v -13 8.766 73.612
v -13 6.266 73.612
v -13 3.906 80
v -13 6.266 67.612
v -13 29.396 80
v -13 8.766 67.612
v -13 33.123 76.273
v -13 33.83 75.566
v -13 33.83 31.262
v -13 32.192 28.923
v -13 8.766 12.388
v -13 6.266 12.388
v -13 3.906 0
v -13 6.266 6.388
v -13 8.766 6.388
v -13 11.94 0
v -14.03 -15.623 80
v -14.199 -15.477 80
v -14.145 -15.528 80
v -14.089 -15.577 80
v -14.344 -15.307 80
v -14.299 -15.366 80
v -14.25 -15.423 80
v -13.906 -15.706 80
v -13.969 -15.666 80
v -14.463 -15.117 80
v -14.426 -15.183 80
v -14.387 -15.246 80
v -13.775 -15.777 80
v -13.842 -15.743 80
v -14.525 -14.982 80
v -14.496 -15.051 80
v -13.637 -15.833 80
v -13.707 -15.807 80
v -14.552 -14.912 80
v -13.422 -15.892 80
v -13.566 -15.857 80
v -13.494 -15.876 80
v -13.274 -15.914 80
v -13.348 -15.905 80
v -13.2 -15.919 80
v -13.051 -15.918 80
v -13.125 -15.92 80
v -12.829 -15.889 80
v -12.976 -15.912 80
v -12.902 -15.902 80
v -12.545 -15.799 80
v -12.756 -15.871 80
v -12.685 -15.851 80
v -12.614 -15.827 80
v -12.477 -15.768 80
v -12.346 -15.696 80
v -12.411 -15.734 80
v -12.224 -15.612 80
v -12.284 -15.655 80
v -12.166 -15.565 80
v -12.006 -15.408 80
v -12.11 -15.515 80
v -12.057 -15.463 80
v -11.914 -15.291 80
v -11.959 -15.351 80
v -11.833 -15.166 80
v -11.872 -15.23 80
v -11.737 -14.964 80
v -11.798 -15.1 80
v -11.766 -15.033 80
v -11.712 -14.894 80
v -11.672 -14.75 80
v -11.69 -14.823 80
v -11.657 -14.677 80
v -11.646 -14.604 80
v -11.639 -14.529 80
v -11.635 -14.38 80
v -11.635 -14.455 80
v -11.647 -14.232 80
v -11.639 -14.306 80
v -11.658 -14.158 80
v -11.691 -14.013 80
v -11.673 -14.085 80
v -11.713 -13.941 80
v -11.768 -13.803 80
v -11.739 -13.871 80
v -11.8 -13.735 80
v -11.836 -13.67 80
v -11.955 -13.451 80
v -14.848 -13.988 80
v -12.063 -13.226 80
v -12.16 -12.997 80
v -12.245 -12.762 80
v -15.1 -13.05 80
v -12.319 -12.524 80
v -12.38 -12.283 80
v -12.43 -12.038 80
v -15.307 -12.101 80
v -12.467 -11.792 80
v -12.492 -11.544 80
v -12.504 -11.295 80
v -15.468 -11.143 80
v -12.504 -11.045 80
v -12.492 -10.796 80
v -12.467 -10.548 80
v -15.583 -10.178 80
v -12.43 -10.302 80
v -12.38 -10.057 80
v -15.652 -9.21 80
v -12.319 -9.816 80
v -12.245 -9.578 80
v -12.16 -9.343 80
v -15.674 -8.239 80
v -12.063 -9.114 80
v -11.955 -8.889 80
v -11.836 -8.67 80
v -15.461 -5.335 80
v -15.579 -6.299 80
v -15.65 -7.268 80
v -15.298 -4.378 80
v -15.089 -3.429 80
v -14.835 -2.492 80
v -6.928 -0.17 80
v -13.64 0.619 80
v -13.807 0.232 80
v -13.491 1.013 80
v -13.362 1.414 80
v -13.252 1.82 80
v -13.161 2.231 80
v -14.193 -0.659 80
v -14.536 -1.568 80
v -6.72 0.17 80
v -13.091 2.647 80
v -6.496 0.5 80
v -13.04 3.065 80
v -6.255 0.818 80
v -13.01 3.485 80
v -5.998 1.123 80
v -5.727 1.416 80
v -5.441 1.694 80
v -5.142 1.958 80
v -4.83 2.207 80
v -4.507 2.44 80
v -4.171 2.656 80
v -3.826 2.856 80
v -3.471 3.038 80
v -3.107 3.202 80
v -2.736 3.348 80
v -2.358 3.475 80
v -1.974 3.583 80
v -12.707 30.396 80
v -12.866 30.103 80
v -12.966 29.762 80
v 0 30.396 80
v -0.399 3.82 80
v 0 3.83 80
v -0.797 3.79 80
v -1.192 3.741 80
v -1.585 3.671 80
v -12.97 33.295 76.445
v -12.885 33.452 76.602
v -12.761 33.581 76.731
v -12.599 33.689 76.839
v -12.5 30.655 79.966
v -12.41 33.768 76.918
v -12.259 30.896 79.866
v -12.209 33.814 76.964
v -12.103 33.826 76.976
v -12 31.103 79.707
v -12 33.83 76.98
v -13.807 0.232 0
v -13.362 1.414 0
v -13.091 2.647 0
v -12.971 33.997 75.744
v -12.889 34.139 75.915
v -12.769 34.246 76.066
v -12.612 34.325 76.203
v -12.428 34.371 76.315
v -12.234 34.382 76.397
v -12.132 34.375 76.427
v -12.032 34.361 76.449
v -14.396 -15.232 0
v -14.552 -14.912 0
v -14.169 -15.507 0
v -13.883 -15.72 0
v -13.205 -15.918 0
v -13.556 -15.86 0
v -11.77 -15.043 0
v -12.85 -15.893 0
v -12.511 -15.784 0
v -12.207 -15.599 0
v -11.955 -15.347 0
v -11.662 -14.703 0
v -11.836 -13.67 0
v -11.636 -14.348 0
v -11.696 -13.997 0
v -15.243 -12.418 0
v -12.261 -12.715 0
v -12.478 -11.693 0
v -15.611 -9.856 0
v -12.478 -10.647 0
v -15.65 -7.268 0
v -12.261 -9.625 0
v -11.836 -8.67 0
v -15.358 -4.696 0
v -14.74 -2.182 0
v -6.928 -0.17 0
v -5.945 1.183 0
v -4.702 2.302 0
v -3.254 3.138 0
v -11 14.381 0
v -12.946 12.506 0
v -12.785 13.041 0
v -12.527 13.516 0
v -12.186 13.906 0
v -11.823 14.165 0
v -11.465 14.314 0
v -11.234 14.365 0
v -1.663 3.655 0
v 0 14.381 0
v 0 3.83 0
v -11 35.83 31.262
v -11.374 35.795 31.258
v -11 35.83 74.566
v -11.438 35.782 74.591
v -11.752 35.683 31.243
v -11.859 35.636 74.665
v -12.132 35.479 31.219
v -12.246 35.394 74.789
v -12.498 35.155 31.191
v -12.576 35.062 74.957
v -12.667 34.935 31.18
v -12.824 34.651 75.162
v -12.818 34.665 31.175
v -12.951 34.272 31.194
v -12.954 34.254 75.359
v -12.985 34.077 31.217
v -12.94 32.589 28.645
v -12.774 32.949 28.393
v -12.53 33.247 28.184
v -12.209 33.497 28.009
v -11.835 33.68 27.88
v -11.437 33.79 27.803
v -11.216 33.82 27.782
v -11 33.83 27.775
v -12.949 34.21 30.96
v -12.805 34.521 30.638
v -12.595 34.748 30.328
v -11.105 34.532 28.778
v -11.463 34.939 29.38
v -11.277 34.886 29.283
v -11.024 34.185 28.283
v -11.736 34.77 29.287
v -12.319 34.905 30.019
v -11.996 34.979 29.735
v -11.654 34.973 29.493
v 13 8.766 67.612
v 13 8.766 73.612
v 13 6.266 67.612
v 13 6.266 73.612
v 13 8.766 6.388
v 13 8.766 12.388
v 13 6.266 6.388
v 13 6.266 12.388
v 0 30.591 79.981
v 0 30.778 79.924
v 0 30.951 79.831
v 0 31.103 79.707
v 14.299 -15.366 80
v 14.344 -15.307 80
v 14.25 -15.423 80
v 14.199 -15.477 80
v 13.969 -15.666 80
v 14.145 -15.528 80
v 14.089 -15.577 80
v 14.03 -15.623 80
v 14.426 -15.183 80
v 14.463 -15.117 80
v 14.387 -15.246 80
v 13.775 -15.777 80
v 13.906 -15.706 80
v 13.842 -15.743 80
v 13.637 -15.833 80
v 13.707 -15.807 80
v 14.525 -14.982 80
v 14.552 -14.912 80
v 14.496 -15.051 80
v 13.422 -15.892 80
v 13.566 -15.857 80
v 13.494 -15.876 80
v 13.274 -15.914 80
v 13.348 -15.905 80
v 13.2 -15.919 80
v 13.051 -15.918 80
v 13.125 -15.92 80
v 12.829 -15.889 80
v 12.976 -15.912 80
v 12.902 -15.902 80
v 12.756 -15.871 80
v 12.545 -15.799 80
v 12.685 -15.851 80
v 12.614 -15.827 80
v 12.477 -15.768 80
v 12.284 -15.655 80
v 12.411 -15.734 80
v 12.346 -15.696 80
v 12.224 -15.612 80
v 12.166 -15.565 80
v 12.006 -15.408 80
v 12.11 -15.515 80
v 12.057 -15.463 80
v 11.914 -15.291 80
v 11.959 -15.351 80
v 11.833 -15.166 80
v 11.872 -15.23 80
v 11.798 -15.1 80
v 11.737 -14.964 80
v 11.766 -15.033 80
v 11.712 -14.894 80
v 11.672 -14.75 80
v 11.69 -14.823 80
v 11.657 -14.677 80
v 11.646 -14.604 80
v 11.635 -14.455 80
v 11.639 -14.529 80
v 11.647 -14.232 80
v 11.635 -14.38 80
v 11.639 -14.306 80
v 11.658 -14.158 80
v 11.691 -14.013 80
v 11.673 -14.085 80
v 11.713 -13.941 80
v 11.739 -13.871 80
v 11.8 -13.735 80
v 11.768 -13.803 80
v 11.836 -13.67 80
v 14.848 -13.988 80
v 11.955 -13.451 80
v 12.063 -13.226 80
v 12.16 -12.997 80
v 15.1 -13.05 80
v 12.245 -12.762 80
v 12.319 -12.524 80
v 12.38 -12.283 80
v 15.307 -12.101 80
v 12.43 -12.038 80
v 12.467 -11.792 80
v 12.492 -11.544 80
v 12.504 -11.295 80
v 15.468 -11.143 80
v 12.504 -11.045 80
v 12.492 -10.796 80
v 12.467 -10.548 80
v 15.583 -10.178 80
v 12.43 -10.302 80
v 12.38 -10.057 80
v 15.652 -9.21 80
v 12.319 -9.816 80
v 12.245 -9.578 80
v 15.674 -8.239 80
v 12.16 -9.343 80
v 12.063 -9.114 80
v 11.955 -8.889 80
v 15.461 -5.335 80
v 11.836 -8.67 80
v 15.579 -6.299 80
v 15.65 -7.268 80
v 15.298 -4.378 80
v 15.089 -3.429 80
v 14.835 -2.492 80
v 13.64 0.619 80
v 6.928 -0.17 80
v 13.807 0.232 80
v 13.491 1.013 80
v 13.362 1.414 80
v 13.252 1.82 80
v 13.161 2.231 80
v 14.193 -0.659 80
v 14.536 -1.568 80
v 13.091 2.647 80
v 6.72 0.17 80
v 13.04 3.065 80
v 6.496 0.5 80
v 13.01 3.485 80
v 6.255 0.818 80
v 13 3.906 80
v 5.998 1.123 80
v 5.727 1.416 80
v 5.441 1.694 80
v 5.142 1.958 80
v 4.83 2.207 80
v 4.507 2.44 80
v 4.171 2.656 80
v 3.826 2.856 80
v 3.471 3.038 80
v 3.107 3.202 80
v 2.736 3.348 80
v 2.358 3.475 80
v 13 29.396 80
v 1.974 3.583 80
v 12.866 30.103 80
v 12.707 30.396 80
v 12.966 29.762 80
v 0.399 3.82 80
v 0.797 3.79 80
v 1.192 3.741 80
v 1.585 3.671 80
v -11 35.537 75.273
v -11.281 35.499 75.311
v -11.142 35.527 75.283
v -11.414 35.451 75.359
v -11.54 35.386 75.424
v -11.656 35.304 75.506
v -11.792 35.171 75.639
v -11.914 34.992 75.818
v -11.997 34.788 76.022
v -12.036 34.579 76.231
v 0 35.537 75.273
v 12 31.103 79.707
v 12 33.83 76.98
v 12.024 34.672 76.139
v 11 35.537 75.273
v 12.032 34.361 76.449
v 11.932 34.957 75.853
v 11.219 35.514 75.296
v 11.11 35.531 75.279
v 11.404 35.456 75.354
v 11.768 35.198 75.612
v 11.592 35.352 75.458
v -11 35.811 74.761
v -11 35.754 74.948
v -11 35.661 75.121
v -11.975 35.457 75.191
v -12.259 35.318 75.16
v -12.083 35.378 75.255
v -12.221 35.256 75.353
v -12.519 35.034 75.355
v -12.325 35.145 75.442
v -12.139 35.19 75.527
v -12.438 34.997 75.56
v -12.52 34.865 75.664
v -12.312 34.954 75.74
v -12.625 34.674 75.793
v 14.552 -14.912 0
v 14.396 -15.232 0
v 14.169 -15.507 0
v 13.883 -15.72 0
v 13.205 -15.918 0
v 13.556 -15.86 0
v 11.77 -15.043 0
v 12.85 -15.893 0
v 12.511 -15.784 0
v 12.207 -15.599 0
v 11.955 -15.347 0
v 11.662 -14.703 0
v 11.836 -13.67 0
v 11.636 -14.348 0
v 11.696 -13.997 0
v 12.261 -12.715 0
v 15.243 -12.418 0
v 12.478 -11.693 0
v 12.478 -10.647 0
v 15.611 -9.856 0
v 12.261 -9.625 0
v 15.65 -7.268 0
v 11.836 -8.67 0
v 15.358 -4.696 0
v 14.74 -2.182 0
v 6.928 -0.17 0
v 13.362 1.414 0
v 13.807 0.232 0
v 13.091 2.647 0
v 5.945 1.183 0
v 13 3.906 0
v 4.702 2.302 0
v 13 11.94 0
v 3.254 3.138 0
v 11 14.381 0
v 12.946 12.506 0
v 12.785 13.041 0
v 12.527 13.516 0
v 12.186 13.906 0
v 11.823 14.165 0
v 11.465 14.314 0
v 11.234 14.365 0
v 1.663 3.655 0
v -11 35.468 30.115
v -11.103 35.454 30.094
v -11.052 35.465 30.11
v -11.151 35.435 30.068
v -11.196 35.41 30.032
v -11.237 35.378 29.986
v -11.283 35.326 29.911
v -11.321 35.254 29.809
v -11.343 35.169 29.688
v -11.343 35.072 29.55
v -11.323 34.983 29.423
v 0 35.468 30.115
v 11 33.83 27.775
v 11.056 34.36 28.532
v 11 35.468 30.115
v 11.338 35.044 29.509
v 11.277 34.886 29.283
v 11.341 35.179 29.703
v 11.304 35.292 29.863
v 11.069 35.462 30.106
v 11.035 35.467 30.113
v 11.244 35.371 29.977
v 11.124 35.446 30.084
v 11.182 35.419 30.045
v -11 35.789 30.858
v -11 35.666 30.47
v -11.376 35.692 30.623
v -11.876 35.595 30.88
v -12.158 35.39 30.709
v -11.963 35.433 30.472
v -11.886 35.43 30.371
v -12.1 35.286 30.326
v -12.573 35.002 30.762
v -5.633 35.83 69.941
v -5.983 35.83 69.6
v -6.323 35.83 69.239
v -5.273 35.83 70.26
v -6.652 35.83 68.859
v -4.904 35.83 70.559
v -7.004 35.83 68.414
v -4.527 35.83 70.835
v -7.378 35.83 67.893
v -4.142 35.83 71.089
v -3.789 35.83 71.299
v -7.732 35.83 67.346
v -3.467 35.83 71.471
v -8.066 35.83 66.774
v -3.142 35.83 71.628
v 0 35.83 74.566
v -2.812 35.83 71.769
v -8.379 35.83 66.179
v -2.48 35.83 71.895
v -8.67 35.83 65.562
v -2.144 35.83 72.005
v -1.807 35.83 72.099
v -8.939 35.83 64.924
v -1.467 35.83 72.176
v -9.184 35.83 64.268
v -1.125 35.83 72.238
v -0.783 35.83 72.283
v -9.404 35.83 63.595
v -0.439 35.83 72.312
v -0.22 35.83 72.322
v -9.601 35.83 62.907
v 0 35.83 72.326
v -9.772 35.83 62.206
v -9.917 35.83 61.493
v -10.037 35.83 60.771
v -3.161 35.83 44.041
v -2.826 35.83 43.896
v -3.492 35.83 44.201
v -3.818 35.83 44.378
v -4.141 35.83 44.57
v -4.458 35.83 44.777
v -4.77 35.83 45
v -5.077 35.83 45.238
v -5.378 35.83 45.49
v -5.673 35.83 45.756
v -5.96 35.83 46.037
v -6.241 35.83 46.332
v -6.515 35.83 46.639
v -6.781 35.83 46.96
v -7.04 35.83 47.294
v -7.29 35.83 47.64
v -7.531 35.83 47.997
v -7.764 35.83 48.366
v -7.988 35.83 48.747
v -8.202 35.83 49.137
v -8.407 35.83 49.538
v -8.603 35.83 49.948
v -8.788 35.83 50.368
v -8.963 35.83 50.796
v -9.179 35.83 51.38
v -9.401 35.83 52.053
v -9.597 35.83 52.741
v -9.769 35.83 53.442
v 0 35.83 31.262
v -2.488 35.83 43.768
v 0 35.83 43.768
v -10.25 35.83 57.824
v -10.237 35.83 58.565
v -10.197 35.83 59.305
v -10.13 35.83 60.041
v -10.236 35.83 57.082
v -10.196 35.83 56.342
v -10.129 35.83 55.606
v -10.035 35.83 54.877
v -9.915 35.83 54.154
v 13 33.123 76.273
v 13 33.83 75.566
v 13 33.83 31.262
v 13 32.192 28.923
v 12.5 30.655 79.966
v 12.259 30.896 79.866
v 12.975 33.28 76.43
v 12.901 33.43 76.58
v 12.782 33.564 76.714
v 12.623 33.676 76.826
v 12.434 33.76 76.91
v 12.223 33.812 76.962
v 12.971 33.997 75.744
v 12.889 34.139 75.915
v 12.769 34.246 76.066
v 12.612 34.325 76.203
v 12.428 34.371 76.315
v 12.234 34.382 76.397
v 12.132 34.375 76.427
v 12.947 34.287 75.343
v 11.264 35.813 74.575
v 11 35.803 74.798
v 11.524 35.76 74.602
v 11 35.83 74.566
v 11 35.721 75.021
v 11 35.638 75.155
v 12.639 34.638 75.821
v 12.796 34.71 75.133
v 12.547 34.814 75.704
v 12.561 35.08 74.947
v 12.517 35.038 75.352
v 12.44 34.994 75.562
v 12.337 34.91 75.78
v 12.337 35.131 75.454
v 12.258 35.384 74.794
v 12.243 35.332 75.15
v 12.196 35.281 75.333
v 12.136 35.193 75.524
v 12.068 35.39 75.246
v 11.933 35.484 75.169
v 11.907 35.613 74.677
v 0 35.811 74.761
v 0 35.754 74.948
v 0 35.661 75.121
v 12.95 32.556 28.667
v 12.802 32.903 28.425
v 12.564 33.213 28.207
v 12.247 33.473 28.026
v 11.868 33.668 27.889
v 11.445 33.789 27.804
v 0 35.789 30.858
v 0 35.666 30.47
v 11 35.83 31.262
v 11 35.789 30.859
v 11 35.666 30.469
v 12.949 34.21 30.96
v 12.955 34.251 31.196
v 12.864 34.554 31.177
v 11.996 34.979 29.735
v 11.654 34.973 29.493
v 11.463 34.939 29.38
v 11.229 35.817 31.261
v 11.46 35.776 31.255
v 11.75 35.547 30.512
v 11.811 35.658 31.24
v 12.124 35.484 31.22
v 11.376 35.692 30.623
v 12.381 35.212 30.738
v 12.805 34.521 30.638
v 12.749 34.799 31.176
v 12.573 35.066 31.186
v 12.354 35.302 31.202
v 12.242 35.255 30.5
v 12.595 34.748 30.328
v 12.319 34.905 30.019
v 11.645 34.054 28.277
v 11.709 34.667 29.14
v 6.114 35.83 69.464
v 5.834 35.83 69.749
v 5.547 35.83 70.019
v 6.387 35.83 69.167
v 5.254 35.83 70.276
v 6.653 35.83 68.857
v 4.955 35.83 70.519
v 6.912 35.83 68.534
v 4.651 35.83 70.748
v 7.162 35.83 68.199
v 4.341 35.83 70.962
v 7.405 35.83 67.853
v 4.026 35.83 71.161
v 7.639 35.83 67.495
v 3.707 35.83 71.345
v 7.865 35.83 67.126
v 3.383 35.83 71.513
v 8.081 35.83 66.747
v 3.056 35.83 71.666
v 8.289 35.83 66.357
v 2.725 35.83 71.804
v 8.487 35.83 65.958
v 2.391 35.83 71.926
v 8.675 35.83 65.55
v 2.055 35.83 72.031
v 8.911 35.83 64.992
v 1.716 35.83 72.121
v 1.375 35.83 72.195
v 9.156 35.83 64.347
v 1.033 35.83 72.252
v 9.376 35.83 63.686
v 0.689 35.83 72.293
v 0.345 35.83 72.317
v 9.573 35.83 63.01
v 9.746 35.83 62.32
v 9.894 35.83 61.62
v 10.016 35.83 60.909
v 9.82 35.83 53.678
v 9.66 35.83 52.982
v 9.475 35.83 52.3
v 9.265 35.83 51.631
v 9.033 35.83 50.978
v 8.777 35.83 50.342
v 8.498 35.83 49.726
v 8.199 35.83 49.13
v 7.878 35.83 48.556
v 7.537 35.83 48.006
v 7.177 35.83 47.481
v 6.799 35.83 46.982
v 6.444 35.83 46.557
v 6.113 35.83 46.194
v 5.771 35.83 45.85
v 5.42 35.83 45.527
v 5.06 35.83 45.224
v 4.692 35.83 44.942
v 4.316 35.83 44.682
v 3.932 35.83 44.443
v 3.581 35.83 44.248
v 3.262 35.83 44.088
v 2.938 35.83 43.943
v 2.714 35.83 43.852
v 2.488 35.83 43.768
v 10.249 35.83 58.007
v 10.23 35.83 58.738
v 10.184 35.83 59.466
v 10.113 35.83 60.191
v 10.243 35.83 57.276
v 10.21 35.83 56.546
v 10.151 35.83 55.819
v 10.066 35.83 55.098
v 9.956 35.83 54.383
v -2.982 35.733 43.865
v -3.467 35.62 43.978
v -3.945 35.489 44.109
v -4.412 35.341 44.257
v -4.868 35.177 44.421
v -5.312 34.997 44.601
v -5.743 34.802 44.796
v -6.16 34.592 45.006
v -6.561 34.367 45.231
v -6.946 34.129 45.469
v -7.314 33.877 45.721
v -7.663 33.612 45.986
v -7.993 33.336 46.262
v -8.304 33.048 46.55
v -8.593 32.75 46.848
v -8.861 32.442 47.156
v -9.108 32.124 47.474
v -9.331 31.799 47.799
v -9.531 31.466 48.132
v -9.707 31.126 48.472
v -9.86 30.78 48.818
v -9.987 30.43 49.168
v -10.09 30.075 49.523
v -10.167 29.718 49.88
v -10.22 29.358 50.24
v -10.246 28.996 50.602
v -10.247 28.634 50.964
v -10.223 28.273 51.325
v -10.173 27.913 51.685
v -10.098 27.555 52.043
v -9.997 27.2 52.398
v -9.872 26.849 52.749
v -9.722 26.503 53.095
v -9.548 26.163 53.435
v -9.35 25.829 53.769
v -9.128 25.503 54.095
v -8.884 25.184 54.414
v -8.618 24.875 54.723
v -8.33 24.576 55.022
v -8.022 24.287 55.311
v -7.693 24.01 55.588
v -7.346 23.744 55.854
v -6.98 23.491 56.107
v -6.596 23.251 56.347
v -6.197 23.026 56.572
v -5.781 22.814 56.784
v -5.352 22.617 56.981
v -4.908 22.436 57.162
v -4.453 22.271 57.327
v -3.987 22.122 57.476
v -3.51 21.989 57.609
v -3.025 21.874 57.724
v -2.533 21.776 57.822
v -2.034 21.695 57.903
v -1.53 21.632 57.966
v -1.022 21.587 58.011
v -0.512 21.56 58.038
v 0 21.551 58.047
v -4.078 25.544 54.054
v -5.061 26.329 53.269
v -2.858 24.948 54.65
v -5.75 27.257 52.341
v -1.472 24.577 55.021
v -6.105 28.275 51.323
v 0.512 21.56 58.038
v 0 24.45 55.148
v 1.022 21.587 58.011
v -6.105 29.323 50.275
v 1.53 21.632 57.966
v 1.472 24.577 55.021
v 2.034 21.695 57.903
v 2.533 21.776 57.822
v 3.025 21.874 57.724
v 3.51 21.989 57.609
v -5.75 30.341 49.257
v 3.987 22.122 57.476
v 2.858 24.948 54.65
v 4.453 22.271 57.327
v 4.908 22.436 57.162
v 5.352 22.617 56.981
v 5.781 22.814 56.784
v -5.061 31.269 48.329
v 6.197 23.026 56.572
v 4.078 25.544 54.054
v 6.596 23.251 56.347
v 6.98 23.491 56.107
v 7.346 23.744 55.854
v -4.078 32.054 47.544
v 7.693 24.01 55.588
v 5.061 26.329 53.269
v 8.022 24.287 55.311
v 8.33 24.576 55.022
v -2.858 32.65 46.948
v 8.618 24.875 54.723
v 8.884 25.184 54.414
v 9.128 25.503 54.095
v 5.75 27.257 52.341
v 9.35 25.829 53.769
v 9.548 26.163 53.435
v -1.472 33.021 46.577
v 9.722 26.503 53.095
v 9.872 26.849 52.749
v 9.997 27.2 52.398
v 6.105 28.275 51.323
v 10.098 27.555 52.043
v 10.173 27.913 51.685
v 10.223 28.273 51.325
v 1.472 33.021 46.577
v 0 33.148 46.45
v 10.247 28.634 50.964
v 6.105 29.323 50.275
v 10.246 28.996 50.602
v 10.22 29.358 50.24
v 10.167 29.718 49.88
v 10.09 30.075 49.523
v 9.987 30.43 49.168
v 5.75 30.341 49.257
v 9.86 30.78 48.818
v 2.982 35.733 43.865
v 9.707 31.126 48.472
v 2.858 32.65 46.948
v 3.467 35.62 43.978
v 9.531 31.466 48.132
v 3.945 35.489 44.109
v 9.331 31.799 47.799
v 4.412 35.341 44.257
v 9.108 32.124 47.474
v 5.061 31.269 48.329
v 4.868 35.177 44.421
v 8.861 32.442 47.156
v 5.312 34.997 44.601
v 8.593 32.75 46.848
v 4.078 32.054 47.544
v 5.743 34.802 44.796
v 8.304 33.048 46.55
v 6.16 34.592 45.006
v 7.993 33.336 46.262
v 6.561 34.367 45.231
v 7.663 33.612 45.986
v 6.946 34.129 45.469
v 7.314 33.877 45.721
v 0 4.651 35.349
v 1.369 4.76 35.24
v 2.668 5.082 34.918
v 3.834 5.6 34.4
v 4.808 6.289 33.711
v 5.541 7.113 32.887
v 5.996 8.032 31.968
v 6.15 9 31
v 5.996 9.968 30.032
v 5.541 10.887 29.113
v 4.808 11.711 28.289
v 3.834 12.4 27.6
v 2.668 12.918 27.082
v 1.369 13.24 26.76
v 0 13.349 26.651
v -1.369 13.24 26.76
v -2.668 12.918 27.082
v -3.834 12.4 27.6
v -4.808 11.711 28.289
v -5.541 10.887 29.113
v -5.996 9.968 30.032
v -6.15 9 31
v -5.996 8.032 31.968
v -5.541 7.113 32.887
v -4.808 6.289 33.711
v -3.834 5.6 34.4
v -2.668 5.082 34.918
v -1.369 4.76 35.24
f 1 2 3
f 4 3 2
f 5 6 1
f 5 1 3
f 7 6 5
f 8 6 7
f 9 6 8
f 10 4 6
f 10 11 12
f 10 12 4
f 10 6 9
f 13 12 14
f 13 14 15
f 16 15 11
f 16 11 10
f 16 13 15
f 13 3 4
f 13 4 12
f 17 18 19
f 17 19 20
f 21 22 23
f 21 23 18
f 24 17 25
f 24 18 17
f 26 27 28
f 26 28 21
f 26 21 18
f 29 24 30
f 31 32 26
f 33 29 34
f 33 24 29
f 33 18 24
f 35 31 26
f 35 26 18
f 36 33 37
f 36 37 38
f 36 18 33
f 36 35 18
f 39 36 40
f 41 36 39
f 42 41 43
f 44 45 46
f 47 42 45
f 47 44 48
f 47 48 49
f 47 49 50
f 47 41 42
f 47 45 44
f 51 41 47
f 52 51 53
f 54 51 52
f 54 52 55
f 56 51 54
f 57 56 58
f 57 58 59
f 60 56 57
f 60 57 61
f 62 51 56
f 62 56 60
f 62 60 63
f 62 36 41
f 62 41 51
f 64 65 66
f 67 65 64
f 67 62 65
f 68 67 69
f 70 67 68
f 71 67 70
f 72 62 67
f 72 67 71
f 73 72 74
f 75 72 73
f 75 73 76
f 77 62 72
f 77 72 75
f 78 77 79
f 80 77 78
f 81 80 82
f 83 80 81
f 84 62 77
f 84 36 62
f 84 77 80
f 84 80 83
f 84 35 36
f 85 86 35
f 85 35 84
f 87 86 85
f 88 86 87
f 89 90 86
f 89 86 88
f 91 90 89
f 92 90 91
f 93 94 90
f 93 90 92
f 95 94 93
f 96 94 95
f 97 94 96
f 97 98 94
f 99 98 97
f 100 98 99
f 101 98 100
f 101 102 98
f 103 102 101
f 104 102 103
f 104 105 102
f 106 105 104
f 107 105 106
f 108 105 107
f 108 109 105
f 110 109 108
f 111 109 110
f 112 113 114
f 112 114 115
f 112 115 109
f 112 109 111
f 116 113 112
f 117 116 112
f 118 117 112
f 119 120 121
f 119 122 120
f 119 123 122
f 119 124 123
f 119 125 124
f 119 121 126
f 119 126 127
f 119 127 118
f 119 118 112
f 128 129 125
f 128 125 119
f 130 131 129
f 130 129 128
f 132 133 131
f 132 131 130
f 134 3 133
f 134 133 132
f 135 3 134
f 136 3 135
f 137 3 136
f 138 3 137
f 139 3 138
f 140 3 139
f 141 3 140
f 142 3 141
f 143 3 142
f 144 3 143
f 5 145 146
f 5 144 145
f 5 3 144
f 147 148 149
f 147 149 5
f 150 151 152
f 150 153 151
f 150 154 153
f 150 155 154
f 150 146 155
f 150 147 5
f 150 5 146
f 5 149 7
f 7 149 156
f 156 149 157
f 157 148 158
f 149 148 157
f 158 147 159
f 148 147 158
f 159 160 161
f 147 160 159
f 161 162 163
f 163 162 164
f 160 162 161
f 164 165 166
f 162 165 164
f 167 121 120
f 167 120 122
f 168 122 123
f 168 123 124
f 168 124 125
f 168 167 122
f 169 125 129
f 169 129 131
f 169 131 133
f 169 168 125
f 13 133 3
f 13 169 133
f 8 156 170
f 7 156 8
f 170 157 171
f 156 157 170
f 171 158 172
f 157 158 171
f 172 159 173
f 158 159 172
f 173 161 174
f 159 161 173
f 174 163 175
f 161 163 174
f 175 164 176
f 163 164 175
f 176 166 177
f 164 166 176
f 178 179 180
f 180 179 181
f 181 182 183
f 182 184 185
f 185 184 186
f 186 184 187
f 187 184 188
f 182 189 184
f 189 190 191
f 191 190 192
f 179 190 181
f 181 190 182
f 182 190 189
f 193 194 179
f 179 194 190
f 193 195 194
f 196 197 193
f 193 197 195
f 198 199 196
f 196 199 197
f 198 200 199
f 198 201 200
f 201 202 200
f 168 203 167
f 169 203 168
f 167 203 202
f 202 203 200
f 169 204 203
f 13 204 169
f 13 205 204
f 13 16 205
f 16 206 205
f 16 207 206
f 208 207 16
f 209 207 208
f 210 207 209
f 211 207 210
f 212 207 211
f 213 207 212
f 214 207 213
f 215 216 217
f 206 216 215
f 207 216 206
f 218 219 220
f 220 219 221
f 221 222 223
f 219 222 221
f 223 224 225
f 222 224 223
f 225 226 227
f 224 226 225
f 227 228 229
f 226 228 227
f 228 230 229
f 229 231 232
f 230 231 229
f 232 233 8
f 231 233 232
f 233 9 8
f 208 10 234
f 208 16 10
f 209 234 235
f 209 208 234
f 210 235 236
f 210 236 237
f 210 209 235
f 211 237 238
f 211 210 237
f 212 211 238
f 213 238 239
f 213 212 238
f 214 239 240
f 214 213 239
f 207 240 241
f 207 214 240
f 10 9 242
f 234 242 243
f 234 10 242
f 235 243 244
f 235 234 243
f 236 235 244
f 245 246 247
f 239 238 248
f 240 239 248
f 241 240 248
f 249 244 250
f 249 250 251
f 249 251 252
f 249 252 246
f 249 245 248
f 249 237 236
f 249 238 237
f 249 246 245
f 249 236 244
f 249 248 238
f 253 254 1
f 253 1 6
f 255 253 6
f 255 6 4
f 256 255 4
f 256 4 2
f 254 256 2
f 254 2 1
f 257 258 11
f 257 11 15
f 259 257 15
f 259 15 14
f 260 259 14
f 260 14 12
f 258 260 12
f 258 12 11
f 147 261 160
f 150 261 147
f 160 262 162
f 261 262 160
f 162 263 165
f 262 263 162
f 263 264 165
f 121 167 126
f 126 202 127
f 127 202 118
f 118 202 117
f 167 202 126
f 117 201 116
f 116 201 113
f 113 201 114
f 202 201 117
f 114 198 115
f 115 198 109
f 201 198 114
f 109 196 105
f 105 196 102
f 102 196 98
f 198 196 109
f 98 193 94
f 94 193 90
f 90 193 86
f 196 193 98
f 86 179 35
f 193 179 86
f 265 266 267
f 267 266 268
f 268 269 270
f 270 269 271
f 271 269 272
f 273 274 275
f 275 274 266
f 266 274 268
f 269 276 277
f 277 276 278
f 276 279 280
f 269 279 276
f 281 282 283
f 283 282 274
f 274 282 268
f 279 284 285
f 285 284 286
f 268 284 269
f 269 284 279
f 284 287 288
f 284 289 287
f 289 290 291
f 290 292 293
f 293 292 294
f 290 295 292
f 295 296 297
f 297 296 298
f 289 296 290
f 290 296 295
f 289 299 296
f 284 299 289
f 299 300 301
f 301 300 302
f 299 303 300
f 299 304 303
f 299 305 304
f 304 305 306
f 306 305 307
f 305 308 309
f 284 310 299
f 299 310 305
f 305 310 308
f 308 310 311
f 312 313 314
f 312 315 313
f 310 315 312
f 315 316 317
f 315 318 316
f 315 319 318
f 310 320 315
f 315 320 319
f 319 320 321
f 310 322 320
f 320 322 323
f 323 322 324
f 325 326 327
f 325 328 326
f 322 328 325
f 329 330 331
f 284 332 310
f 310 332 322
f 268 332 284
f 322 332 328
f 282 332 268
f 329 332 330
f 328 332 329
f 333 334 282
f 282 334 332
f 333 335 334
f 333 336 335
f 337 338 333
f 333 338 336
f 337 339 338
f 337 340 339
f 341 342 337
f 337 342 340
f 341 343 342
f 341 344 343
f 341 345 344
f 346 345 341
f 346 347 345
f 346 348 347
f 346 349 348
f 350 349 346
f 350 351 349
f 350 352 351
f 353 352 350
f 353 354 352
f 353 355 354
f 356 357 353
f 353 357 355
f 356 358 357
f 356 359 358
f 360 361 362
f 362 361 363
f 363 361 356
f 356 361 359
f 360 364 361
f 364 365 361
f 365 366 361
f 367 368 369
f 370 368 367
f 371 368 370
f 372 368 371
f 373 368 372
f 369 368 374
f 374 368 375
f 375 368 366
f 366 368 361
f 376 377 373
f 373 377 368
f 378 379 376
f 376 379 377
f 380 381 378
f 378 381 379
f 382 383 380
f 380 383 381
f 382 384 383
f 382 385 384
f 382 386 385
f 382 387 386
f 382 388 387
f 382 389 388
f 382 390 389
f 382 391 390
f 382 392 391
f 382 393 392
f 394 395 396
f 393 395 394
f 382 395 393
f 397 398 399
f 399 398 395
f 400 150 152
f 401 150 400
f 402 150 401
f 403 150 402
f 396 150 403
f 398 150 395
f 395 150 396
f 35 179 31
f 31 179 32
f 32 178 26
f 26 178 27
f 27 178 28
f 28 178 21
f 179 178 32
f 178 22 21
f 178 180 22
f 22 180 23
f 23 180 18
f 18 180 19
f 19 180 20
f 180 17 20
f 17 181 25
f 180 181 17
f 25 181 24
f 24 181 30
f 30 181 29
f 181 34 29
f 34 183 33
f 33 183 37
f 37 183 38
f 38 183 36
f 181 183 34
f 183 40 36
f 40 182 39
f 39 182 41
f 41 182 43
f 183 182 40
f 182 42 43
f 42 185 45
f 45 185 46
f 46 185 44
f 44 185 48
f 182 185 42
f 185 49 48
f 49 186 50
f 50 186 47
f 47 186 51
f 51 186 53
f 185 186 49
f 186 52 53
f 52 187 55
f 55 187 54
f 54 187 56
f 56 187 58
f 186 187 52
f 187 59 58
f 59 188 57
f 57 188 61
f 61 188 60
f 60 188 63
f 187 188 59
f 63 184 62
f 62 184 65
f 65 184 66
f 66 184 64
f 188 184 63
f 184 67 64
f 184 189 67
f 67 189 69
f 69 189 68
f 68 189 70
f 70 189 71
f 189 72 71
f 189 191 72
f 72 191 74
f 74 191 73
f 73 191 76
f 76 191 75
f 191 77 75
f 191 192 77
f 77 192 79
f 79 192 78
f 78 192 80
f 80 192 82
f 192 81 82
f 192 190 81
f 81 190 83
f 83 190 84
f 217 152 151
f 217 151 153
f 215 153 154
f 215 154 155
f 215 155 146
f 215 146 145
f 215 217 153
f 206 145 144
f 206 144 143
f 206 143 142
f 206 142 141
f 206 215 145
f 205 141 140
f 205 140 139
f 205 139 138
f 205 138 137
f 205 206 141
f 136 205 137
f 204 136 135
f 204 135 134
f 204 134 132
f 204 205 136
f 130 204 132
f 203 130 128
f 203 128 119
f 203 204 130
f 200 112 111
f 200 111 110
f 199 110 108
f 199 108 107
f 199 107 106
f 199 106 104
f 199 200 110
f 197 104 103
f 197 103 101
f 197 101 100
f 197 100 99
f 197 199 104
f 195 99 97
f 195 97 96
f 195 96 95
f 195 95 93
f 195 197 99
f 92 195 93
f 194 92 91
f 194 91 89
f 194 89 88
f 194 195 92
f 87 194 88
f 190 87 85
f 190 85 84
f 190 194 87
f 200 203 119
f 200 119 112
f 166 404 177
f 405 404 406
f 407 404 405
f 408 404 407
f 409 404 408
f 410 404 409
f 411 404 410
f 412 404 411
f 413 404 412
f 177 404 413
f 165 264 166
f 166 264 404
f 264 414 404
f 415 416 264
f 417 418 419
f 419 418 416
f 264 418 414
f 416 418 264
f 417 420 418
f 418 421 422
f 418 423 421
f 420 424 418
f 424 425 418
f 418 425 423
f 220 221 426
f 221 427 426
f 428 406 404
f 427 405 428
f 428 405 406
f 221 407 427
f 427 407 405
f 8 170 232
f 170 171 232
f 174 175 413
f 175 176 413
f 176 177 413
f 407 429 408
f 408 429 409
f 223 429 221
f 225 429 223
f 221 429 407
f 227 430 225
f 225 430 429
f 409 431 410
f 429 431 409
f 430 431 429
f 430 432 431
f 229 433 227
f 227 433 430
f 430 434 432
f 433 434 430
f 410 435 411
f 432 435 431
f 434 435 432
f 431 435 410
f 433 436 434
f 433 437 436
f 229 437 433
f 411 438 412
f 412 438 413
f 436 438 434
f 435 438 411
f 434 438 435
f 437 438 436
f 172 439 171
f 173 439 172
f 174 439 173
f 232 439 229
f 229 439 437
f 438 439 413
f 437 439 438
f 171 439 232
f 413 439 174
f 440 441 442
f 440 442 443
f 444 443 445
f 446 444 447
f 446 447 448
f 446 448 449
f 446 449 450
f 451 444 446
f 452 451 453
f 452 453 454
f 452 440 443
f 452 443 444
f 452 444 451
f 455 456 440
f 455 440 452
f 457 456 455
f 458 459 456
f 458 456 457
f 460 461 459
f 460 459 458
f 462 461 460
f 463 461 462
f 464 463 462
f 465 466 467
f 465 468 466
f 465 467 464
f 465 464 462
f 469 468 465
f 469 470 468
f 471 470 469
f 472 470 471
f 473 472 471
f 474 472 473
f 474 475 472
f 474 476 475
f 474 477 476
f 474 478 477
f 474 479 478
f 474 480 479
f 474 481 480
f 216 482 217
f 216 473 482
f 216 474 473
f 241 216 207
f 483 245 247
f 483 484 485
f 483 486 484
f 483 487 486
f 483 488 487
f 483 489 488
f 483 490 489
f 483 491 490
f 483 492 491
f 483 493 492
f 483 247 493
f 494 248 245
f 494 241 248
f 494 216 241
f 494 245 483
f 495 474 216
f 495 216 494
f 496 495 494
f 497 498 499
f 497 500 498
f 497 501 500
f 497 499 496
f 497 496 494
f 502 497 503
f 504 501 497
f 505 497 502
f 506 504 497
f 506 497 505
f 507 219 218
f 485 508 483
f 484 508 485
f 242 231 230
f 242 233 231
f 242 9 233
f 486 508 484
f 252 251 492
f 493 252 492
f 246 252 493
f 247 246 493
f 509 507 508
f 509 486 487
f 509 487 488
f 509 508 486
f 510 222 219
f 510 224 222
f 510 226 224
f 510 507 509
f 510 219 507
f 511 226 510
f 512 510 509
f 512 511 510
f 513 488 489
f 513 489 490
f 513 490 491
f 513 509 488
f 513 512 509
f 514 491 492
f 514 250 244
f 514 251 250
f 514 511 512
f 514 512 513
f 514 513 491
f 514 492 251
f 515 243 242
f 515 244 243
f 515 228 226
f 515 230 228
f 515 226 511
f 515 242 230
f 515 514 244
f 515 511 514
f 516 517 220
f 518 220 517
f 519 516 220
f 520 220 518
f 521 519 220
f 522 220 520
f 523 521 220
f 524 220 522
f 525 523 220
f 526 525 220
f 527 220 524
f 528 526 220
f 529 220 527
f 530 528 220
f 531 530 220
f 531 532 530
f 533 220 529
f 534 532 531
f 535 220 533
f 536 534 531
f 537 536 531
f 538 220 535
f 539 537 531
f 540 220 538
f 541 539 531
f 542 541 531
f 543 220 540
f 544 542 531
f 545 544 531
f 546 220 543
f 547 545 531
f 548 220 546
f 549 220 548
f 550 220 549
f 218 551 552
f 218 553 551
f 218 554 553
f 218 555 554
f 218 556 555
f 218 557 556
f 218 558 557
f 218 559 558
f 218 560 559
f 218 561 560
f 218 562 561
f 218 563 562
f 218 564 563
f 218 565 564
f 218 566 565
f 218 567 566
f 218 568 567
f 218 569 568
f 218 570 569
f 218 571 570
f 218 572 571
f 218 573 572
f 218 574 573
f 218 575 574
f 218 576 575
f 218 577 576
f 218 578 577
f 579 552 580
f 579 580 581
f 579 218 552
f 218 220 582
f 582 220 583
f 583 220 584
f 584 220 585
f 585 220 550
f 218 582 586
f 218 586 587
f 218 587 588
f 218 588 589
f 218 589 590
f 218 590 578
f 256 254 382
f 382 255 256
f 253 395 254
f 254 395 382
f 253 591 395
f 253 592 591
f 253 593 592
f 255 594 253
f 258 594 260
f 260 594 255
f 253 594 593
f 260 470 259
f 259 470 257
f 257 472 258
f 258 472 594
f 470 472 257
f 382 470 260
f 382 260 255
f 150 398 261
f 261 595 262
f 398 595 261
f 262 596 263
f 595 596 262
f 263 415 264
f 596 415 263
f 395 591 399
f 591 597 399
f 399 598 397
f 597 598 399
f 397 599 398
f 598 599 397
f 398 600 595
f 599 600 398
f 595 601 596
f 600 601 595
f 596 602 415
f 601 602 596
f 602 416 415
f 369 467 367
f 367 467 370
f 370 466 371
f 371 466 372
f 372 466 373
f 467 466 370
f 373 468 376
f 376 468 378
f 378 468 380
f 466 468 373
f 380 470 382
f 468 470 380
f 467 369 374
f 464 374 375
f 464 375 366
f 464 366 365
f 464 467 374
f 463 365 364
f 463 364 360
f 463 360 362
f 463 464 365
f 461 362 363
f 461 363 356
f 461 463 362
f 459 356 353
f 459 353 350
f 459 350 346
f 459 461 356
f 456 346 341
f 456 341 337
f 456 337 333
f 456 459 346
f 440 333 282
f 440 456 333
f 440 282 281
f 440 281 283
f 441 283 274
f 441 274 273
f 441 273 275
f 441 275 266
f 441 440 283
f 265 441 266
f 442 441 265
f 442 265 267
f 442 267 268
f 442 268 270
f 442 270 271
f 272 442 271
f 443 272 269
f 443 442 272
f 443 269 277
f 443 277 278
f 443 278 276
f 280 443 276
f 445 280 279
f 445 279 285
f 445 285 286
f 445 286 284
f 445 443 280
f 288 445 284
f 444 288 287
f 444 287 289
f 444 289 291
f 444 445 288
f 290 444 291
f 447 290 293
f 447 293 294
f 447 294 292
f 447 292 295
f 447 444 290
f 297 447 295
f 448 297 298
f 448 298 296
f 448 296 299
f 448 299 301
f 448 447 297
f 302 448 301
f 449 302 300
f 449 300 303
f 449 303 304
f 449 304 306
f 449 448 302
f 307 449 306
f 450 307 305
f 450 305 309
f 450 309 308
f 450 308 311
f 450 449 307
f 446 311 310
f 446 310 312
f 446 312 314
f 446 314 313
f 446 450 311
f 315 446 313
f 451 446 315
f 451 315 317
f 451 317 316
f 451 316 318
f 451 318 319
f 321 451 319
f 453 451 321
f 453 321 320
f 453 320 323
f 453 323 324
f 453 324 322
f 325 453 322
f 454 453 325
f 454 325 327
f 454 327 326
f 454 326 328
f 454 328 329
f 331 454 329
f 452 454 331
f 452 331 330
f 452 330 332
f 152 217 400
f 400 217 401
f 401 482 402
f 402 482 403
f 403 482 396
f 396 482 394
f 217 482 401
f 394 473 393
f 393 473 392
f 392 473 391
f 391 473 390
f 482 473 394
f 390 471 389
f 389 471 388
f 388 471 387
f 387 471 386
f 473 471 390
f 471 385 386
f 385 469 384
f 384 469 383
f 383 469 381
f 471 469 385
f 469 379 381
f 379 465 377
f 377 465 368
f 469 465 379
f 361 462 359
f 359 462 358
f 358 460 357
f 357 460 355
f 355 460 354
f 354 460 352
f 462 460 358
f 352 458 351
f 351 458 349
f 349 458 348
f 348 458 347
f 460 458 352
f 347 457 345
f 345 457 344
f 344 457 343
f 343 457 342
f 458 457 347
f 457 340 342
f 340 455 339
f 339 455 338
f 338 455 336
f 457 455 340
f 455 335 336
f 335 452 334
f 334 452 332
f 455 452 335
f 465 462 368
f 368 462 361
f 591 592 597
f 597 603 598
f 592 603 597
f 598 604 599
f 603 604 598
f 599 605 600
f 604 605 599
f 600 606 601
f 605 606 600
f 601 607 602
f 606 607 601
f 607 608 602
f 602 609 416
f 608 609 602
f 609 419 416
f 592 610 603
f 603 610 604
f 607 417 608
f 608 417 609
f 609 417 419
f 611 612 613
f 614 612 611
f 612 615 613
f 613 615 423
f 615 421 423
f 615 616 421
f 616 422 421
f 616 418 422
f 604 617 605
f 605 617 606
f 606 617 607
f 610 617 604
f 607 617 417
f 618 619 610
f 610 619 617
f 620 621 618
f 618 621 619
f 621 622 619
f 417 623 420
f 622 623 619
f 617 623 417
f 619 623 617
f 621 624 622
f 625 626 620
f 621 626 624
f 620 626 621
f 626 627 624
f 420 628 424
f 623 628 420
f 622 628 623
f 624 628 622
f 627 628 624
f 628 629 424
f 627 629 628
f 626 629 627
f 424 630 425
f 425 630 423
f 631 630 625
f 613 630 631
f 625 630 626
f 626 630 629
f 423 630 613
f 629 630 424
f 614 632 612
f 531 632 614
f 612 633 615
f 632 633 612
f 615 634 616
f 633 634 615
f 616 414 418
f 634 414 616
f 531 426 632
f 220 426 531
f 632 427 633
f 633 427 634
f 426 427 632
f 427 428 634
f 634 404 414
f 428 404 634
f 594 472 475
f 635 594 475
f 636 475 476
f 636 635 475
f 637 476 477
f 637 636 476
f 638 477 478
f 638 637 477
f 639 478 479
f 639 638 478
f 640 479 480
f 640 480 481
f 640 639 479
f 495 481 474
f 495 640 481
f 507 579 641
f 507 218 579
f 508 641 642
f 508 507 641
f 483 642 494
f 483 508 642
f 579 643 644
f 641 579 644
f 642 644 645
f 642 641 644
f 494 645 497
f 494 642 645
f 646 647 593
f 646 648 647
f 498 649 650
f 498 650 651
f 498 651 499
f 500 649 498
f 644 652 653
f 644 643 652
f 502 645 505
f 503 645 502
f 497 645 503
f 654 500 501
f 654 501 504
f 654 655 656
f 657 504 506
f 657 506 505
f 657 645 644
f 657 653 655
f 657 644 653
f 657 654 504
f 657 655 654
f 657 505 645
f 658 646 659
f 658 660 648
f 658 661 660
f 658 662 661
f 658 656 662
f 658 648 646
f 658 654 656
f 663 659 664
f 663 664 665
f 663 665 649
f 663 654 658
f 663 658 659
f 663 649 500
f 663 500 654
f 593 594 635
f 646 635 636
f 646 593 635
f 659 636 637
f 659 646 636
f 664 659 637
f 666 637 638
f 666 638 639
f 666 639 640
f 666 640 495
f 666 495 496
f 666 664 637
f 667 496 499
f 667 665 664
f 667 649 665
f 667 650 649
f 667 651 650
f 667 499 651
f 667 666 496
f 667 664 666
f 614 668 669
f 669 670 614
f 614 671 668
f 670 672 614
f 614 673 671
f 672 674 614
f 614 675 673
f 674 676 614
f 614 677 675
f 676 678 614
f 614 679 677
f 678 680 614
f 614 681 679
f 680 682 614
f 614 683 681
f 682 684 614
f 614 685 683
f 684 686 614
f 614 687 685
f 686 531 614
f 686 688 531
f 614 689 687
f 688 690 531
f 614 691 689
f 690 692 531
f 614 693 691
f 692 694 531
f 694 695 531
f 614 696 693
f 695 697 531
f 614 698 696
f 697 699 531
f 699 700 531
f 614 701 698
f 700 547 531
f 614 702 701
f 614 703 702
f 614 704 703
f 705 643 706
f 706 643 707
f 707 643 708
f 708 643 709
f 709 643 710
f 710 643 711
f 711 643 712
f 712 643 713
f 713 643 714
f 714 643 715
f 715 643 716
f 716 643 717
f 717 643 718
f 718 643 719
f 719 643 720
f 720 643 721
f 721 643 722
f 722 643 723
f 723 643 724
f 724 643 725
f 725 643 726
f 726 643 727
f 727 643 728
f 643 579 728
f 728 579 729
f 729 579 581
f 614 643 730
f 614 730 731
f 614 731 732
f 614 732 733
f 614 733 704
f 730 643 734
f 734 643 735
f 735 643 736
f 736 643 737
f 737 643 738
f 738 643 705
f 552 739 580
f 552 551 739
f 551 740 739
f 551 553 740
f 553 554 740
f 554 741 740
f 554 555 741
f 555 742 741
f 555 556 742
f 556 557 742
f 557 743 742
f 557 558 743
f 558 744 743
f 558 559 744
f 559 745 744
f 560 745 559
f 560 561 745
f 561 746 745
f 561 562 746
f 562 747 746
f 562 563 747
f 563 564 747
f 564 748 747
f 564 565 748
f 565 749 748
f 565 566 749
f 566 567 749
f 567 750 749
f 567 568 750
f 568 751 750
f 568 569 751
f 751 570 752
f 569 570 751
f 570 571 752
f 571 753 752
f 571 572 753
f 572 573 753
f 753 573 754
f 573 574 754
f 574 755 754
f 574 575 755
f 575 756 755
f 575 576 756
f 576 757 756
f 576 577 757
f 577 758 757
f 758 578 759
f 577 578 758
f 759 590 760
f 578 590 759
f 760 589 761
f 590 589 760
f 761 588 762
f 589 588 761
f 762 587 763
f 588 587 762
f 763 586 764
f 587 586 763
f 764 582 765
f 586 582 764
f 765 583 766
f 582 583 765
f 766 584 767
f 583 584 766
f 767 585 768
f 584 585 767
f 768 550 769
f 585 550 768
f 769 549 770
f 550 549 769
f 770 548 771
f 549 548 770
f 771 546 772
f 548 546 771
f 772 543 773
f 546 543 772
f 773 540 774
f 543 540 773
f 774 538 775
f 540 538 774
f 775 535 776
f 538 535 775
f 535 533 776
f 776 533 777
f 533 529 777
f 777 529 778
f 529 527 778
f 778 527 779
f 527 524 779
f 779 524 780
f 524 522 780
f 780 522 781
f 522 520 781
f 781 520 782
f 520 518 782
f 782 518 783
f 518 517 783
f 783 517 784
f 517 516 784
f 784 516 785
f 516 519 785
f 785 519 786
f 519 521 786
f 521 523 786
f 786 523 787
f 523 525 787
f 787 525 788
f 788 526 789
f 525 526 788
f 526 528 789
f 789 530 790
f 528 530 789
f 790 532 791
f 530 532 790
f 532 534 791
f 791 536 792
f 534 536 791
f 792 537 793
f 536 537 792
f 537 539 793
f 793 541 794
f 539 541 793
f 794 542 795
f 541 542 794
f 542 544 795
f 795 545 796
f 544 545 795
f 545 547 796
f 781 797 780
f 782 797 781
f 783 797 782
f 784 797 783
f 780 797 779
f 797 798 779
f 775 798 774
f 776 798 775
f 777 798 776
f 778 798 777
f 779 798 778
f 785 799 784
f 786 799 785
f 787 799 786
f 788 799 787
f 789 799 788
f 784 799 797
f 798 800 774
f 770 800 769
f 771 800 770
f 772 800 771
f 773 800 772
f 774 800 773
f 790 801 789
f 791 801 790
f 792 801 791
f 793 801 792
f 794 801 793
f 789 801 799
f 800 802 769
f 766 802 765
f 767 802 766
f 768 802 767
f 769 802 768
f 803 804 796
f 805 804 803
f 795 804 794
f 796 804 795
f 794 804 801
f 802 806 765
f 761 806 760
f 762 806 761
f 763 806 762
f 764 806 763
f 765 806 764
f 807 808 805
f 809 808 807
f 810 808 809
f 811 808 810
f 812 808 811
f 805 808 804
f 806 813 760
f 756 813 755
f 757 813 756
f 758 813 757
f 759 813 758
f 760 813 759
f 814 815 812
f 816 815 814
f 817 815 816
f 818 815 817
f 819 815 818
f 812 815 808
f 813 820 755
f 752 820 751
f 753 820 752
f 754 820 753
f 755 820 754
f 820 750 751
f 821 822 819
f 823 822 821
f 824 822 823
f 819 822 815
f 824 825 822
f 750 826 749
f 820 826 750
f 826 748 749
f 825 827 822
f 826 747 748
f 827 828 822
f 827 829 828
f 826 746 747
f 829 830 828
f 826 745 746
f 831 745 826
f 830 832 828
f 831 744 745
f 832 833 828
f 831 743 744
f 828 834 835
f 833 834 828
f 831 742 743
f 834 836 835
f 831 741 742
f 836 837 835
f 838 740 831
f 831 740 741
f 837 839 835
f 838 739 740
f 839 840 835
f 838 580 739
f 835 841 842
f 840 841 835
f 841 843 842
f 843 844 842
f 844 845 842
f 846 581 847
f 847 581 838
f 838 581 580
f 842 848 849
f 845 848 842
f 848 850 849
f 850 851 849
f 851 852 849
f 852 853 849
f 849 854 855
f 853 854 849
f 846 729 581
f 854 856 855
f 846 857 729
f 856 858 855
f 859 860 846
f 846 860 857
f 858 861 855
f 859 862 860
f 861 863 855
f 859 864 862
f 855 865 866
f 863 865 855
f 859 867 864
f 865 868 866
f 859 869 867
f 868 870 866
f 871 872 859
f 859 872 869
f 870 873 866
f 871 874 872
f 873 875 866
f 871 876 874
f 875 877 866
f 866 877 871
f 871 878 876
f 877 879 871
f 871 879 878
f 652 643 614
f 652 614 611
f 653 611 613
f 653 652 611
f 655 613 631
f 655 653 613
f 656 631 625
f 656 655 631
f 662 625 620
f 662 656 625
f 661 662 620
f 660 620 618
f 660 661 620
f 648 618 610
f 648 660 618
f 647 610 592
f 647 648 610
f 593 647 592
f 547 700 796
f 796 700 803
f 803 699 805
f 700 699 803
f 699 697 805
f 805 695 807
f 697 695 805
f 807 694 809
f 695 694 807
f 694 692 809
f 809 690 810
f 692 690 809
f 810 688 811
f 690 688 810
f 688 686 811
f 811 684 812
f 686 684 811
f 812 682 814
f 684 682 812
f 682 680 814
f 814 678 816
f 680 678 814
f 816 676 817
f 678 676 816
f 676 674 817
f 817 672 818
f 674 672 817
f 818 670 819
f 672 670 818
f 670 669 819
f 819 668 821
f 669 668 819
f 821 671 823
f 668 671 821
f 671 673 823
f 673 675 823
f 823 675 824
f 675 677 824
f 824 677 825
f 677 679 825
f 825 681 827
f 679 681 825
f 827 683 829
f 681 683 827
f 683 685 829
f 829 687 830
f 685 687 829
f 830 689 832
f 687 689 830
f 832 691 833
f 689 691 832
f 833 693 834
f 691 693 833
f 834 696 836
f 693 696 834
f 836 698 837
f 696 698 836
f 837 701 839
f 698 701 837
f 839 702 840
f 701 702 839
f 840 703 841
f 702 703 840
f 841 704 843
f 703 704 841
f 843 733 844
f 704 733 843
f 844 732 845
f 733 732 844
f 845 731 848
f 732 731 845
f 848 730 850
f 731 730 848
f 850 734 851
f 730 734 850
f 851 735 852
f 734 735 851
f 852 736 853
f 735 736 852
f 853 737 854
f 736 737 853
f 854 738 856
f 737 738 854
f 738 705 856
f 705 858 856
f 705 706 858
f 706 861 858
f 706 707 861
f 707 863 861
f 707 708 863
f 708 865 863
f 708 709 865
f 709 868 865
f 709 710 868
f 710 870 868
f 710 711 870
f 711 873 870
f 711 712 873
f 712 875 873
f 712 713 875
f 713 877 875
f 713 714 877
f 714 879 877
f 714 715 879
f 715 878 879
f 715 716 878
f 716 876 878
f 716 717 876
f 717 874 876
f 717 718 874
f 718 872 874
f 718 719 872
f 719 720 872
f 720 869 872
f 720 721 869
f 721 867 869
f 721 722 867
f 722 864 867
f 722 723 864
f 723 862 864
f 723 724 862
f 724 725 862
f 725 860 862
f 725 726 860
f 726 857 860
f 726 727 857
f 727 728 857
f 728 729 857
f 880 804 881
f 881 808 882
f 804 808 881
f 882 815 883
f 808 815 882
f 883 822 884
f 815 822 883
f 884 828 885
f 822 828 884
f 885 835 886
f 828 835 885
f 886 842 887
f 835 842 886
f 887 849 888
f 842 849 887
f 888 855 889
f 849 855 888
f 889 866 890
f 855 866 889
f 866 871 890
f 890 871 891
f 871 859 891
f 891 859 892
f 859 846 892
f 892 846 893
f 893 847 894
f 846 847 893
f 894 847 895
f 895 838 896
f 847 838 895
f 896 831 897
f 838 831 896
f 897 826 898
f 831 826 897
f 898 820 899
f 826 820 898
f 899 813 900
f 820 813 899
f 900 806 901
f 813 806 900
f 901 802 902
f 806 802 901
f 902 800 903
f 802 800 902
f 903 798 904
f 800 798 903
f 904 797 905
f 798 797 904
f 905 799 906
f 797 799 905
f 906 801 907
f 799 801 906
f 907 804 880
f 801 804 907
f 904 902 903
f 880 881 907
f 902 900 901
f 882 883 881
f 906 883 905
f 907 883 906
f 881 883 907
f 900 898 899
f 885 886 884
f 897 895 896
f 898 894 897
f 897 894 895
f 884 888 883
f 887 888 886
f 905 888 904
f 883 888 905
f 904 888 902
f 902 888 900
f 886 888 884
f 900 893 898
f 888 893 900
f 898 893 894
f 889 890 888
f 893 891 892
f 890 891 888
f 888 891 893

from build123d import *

# Parameters (mm, degrees)
BODY001_PLACEMENT_ANGLE = 45
PAD_DEPTH               = 80
SKETCH001_W             = 2.5
SKETCH001_H             = 6
POCKET_DEPTH            = 28.674996
FILLET_R                = 2
FILLET001_R             = 1


with BuildPart() as body001:
    # Sketch002 → Revolution (revolve)
    with BuildSketch(Plane.YZ):
        Polygon((0, 0), (0, 6.15), (28, 6.15), (28, 10.25), (56.26033, 10.25), (56.26033, 0), align=None)
    revolve(axis=Axis((0, 0, 0), (0, 1, 0)))


with BuildPart() as body001_1:
    # Body001 placement: moved
    add(body001.part.moved(Location((0, 9, 31))).rotate(Axis((0, 9, 31), (1, 0, 0)), BODY001_PLACEMENT_ANGLE))


with BuildPart() as fillet001:
    # Sketch → Pad (new body)
    with BuildSketch(Plane.XY):
        with BuildLine():
            ThreePointArc((0, 3.83), (-4, 2.758203), (-6.928203, -0.17))
            Line((-6.928203, -0.17), (-11.835681, -8.67))
            ThreePointArc((-11.835681, -8.67), (-12.505553, -11.17), (-11.835681, -13.67))
            ThreePointArc((-14.551626, -14.912315), (-12.510772, -15.784071), (-11.835681, -13.67))
            ThreePointArc((-13.807272, 0.232263), (-15.649568, -7.26777), (-14.551626, -14.912315))
            ThreePointArc((-13.807272, 0.232263), (-13.204197, 2.02521), (-13, 3.905811))
            Line((-13, 3.905811), (-13, 33.83))
            ThreePointArc((-11, 35.83), (-12.414214, 35.244214), (-13, 33.83))
            Line((-11, 35.83), (0, 35.83))
            Line((0, 35.83), (0, 3.83))
        make_face()
    pad = extrude(amount=PAD_DEPTH)

    # Mirrored: Pad across Sketch V_Axis
    add(pad.mirror(Plane(origin=(0, 0, 0), x_dir=(0, 0, 1), z_dir=(1, 0, 0))))

    # Sketch001 (on Face20 of Mirrored) → Pocket (cut, through all)
    with BuildSketch(Plane.YZ.offset(13)):
        with Locations((7.516462, 70.611825)):
            Rectangle(SKETCH001_W, SKETCH001_H)
        with Locations((7.516462, 9.388175)):
            Rectangle(SKETCH001_W, SKETCH001_H)
        Polygon((9.062247, -7.596541), (45.172724, 43.974565), (45.172724, -7.596541), align=None)
        Polygon((20.480662, 90.329349), (40.583266, 70.226745), (40.583266, 96.418373), align=None)
    extrude(amount=-POCKET_DEPTH, mode=Mode.SUBTRACT)

    # Cut: cut Body001
    add(body001_1.part, mode=Mode.SUBTRACT)

    # Fillet
    fillet_edges = [fillet001.edges().sort_by_distance(p)[0] for p in [
        (-13, 24.105701, 13.887738),
        (13, 24.105701, 13.887738),
    ]]
    fillet(fillet_edges, radius=FILLET_R)

    # Fillet001
    fillet001_edges = [fillet001.edges().sort_by_distance(p)[0] for p in [
        (-13, 32.320005, 78.490005),
        (-6.5, 30.810011, 80),
        (-12.526592, 35.122098, 75.687913),
        (13, 32.320005, 78.490005),
        (12.526592, 35.122098, 75.687913),
        (5.5, 35.83, 74.980011),
        (-5.5, 35.83, 74.980011),
        (6.5, 30.810011, 80),
    ]]
    fillet(fillet001_edges, radius=FILLET001_R)


solid = fillet001.part
